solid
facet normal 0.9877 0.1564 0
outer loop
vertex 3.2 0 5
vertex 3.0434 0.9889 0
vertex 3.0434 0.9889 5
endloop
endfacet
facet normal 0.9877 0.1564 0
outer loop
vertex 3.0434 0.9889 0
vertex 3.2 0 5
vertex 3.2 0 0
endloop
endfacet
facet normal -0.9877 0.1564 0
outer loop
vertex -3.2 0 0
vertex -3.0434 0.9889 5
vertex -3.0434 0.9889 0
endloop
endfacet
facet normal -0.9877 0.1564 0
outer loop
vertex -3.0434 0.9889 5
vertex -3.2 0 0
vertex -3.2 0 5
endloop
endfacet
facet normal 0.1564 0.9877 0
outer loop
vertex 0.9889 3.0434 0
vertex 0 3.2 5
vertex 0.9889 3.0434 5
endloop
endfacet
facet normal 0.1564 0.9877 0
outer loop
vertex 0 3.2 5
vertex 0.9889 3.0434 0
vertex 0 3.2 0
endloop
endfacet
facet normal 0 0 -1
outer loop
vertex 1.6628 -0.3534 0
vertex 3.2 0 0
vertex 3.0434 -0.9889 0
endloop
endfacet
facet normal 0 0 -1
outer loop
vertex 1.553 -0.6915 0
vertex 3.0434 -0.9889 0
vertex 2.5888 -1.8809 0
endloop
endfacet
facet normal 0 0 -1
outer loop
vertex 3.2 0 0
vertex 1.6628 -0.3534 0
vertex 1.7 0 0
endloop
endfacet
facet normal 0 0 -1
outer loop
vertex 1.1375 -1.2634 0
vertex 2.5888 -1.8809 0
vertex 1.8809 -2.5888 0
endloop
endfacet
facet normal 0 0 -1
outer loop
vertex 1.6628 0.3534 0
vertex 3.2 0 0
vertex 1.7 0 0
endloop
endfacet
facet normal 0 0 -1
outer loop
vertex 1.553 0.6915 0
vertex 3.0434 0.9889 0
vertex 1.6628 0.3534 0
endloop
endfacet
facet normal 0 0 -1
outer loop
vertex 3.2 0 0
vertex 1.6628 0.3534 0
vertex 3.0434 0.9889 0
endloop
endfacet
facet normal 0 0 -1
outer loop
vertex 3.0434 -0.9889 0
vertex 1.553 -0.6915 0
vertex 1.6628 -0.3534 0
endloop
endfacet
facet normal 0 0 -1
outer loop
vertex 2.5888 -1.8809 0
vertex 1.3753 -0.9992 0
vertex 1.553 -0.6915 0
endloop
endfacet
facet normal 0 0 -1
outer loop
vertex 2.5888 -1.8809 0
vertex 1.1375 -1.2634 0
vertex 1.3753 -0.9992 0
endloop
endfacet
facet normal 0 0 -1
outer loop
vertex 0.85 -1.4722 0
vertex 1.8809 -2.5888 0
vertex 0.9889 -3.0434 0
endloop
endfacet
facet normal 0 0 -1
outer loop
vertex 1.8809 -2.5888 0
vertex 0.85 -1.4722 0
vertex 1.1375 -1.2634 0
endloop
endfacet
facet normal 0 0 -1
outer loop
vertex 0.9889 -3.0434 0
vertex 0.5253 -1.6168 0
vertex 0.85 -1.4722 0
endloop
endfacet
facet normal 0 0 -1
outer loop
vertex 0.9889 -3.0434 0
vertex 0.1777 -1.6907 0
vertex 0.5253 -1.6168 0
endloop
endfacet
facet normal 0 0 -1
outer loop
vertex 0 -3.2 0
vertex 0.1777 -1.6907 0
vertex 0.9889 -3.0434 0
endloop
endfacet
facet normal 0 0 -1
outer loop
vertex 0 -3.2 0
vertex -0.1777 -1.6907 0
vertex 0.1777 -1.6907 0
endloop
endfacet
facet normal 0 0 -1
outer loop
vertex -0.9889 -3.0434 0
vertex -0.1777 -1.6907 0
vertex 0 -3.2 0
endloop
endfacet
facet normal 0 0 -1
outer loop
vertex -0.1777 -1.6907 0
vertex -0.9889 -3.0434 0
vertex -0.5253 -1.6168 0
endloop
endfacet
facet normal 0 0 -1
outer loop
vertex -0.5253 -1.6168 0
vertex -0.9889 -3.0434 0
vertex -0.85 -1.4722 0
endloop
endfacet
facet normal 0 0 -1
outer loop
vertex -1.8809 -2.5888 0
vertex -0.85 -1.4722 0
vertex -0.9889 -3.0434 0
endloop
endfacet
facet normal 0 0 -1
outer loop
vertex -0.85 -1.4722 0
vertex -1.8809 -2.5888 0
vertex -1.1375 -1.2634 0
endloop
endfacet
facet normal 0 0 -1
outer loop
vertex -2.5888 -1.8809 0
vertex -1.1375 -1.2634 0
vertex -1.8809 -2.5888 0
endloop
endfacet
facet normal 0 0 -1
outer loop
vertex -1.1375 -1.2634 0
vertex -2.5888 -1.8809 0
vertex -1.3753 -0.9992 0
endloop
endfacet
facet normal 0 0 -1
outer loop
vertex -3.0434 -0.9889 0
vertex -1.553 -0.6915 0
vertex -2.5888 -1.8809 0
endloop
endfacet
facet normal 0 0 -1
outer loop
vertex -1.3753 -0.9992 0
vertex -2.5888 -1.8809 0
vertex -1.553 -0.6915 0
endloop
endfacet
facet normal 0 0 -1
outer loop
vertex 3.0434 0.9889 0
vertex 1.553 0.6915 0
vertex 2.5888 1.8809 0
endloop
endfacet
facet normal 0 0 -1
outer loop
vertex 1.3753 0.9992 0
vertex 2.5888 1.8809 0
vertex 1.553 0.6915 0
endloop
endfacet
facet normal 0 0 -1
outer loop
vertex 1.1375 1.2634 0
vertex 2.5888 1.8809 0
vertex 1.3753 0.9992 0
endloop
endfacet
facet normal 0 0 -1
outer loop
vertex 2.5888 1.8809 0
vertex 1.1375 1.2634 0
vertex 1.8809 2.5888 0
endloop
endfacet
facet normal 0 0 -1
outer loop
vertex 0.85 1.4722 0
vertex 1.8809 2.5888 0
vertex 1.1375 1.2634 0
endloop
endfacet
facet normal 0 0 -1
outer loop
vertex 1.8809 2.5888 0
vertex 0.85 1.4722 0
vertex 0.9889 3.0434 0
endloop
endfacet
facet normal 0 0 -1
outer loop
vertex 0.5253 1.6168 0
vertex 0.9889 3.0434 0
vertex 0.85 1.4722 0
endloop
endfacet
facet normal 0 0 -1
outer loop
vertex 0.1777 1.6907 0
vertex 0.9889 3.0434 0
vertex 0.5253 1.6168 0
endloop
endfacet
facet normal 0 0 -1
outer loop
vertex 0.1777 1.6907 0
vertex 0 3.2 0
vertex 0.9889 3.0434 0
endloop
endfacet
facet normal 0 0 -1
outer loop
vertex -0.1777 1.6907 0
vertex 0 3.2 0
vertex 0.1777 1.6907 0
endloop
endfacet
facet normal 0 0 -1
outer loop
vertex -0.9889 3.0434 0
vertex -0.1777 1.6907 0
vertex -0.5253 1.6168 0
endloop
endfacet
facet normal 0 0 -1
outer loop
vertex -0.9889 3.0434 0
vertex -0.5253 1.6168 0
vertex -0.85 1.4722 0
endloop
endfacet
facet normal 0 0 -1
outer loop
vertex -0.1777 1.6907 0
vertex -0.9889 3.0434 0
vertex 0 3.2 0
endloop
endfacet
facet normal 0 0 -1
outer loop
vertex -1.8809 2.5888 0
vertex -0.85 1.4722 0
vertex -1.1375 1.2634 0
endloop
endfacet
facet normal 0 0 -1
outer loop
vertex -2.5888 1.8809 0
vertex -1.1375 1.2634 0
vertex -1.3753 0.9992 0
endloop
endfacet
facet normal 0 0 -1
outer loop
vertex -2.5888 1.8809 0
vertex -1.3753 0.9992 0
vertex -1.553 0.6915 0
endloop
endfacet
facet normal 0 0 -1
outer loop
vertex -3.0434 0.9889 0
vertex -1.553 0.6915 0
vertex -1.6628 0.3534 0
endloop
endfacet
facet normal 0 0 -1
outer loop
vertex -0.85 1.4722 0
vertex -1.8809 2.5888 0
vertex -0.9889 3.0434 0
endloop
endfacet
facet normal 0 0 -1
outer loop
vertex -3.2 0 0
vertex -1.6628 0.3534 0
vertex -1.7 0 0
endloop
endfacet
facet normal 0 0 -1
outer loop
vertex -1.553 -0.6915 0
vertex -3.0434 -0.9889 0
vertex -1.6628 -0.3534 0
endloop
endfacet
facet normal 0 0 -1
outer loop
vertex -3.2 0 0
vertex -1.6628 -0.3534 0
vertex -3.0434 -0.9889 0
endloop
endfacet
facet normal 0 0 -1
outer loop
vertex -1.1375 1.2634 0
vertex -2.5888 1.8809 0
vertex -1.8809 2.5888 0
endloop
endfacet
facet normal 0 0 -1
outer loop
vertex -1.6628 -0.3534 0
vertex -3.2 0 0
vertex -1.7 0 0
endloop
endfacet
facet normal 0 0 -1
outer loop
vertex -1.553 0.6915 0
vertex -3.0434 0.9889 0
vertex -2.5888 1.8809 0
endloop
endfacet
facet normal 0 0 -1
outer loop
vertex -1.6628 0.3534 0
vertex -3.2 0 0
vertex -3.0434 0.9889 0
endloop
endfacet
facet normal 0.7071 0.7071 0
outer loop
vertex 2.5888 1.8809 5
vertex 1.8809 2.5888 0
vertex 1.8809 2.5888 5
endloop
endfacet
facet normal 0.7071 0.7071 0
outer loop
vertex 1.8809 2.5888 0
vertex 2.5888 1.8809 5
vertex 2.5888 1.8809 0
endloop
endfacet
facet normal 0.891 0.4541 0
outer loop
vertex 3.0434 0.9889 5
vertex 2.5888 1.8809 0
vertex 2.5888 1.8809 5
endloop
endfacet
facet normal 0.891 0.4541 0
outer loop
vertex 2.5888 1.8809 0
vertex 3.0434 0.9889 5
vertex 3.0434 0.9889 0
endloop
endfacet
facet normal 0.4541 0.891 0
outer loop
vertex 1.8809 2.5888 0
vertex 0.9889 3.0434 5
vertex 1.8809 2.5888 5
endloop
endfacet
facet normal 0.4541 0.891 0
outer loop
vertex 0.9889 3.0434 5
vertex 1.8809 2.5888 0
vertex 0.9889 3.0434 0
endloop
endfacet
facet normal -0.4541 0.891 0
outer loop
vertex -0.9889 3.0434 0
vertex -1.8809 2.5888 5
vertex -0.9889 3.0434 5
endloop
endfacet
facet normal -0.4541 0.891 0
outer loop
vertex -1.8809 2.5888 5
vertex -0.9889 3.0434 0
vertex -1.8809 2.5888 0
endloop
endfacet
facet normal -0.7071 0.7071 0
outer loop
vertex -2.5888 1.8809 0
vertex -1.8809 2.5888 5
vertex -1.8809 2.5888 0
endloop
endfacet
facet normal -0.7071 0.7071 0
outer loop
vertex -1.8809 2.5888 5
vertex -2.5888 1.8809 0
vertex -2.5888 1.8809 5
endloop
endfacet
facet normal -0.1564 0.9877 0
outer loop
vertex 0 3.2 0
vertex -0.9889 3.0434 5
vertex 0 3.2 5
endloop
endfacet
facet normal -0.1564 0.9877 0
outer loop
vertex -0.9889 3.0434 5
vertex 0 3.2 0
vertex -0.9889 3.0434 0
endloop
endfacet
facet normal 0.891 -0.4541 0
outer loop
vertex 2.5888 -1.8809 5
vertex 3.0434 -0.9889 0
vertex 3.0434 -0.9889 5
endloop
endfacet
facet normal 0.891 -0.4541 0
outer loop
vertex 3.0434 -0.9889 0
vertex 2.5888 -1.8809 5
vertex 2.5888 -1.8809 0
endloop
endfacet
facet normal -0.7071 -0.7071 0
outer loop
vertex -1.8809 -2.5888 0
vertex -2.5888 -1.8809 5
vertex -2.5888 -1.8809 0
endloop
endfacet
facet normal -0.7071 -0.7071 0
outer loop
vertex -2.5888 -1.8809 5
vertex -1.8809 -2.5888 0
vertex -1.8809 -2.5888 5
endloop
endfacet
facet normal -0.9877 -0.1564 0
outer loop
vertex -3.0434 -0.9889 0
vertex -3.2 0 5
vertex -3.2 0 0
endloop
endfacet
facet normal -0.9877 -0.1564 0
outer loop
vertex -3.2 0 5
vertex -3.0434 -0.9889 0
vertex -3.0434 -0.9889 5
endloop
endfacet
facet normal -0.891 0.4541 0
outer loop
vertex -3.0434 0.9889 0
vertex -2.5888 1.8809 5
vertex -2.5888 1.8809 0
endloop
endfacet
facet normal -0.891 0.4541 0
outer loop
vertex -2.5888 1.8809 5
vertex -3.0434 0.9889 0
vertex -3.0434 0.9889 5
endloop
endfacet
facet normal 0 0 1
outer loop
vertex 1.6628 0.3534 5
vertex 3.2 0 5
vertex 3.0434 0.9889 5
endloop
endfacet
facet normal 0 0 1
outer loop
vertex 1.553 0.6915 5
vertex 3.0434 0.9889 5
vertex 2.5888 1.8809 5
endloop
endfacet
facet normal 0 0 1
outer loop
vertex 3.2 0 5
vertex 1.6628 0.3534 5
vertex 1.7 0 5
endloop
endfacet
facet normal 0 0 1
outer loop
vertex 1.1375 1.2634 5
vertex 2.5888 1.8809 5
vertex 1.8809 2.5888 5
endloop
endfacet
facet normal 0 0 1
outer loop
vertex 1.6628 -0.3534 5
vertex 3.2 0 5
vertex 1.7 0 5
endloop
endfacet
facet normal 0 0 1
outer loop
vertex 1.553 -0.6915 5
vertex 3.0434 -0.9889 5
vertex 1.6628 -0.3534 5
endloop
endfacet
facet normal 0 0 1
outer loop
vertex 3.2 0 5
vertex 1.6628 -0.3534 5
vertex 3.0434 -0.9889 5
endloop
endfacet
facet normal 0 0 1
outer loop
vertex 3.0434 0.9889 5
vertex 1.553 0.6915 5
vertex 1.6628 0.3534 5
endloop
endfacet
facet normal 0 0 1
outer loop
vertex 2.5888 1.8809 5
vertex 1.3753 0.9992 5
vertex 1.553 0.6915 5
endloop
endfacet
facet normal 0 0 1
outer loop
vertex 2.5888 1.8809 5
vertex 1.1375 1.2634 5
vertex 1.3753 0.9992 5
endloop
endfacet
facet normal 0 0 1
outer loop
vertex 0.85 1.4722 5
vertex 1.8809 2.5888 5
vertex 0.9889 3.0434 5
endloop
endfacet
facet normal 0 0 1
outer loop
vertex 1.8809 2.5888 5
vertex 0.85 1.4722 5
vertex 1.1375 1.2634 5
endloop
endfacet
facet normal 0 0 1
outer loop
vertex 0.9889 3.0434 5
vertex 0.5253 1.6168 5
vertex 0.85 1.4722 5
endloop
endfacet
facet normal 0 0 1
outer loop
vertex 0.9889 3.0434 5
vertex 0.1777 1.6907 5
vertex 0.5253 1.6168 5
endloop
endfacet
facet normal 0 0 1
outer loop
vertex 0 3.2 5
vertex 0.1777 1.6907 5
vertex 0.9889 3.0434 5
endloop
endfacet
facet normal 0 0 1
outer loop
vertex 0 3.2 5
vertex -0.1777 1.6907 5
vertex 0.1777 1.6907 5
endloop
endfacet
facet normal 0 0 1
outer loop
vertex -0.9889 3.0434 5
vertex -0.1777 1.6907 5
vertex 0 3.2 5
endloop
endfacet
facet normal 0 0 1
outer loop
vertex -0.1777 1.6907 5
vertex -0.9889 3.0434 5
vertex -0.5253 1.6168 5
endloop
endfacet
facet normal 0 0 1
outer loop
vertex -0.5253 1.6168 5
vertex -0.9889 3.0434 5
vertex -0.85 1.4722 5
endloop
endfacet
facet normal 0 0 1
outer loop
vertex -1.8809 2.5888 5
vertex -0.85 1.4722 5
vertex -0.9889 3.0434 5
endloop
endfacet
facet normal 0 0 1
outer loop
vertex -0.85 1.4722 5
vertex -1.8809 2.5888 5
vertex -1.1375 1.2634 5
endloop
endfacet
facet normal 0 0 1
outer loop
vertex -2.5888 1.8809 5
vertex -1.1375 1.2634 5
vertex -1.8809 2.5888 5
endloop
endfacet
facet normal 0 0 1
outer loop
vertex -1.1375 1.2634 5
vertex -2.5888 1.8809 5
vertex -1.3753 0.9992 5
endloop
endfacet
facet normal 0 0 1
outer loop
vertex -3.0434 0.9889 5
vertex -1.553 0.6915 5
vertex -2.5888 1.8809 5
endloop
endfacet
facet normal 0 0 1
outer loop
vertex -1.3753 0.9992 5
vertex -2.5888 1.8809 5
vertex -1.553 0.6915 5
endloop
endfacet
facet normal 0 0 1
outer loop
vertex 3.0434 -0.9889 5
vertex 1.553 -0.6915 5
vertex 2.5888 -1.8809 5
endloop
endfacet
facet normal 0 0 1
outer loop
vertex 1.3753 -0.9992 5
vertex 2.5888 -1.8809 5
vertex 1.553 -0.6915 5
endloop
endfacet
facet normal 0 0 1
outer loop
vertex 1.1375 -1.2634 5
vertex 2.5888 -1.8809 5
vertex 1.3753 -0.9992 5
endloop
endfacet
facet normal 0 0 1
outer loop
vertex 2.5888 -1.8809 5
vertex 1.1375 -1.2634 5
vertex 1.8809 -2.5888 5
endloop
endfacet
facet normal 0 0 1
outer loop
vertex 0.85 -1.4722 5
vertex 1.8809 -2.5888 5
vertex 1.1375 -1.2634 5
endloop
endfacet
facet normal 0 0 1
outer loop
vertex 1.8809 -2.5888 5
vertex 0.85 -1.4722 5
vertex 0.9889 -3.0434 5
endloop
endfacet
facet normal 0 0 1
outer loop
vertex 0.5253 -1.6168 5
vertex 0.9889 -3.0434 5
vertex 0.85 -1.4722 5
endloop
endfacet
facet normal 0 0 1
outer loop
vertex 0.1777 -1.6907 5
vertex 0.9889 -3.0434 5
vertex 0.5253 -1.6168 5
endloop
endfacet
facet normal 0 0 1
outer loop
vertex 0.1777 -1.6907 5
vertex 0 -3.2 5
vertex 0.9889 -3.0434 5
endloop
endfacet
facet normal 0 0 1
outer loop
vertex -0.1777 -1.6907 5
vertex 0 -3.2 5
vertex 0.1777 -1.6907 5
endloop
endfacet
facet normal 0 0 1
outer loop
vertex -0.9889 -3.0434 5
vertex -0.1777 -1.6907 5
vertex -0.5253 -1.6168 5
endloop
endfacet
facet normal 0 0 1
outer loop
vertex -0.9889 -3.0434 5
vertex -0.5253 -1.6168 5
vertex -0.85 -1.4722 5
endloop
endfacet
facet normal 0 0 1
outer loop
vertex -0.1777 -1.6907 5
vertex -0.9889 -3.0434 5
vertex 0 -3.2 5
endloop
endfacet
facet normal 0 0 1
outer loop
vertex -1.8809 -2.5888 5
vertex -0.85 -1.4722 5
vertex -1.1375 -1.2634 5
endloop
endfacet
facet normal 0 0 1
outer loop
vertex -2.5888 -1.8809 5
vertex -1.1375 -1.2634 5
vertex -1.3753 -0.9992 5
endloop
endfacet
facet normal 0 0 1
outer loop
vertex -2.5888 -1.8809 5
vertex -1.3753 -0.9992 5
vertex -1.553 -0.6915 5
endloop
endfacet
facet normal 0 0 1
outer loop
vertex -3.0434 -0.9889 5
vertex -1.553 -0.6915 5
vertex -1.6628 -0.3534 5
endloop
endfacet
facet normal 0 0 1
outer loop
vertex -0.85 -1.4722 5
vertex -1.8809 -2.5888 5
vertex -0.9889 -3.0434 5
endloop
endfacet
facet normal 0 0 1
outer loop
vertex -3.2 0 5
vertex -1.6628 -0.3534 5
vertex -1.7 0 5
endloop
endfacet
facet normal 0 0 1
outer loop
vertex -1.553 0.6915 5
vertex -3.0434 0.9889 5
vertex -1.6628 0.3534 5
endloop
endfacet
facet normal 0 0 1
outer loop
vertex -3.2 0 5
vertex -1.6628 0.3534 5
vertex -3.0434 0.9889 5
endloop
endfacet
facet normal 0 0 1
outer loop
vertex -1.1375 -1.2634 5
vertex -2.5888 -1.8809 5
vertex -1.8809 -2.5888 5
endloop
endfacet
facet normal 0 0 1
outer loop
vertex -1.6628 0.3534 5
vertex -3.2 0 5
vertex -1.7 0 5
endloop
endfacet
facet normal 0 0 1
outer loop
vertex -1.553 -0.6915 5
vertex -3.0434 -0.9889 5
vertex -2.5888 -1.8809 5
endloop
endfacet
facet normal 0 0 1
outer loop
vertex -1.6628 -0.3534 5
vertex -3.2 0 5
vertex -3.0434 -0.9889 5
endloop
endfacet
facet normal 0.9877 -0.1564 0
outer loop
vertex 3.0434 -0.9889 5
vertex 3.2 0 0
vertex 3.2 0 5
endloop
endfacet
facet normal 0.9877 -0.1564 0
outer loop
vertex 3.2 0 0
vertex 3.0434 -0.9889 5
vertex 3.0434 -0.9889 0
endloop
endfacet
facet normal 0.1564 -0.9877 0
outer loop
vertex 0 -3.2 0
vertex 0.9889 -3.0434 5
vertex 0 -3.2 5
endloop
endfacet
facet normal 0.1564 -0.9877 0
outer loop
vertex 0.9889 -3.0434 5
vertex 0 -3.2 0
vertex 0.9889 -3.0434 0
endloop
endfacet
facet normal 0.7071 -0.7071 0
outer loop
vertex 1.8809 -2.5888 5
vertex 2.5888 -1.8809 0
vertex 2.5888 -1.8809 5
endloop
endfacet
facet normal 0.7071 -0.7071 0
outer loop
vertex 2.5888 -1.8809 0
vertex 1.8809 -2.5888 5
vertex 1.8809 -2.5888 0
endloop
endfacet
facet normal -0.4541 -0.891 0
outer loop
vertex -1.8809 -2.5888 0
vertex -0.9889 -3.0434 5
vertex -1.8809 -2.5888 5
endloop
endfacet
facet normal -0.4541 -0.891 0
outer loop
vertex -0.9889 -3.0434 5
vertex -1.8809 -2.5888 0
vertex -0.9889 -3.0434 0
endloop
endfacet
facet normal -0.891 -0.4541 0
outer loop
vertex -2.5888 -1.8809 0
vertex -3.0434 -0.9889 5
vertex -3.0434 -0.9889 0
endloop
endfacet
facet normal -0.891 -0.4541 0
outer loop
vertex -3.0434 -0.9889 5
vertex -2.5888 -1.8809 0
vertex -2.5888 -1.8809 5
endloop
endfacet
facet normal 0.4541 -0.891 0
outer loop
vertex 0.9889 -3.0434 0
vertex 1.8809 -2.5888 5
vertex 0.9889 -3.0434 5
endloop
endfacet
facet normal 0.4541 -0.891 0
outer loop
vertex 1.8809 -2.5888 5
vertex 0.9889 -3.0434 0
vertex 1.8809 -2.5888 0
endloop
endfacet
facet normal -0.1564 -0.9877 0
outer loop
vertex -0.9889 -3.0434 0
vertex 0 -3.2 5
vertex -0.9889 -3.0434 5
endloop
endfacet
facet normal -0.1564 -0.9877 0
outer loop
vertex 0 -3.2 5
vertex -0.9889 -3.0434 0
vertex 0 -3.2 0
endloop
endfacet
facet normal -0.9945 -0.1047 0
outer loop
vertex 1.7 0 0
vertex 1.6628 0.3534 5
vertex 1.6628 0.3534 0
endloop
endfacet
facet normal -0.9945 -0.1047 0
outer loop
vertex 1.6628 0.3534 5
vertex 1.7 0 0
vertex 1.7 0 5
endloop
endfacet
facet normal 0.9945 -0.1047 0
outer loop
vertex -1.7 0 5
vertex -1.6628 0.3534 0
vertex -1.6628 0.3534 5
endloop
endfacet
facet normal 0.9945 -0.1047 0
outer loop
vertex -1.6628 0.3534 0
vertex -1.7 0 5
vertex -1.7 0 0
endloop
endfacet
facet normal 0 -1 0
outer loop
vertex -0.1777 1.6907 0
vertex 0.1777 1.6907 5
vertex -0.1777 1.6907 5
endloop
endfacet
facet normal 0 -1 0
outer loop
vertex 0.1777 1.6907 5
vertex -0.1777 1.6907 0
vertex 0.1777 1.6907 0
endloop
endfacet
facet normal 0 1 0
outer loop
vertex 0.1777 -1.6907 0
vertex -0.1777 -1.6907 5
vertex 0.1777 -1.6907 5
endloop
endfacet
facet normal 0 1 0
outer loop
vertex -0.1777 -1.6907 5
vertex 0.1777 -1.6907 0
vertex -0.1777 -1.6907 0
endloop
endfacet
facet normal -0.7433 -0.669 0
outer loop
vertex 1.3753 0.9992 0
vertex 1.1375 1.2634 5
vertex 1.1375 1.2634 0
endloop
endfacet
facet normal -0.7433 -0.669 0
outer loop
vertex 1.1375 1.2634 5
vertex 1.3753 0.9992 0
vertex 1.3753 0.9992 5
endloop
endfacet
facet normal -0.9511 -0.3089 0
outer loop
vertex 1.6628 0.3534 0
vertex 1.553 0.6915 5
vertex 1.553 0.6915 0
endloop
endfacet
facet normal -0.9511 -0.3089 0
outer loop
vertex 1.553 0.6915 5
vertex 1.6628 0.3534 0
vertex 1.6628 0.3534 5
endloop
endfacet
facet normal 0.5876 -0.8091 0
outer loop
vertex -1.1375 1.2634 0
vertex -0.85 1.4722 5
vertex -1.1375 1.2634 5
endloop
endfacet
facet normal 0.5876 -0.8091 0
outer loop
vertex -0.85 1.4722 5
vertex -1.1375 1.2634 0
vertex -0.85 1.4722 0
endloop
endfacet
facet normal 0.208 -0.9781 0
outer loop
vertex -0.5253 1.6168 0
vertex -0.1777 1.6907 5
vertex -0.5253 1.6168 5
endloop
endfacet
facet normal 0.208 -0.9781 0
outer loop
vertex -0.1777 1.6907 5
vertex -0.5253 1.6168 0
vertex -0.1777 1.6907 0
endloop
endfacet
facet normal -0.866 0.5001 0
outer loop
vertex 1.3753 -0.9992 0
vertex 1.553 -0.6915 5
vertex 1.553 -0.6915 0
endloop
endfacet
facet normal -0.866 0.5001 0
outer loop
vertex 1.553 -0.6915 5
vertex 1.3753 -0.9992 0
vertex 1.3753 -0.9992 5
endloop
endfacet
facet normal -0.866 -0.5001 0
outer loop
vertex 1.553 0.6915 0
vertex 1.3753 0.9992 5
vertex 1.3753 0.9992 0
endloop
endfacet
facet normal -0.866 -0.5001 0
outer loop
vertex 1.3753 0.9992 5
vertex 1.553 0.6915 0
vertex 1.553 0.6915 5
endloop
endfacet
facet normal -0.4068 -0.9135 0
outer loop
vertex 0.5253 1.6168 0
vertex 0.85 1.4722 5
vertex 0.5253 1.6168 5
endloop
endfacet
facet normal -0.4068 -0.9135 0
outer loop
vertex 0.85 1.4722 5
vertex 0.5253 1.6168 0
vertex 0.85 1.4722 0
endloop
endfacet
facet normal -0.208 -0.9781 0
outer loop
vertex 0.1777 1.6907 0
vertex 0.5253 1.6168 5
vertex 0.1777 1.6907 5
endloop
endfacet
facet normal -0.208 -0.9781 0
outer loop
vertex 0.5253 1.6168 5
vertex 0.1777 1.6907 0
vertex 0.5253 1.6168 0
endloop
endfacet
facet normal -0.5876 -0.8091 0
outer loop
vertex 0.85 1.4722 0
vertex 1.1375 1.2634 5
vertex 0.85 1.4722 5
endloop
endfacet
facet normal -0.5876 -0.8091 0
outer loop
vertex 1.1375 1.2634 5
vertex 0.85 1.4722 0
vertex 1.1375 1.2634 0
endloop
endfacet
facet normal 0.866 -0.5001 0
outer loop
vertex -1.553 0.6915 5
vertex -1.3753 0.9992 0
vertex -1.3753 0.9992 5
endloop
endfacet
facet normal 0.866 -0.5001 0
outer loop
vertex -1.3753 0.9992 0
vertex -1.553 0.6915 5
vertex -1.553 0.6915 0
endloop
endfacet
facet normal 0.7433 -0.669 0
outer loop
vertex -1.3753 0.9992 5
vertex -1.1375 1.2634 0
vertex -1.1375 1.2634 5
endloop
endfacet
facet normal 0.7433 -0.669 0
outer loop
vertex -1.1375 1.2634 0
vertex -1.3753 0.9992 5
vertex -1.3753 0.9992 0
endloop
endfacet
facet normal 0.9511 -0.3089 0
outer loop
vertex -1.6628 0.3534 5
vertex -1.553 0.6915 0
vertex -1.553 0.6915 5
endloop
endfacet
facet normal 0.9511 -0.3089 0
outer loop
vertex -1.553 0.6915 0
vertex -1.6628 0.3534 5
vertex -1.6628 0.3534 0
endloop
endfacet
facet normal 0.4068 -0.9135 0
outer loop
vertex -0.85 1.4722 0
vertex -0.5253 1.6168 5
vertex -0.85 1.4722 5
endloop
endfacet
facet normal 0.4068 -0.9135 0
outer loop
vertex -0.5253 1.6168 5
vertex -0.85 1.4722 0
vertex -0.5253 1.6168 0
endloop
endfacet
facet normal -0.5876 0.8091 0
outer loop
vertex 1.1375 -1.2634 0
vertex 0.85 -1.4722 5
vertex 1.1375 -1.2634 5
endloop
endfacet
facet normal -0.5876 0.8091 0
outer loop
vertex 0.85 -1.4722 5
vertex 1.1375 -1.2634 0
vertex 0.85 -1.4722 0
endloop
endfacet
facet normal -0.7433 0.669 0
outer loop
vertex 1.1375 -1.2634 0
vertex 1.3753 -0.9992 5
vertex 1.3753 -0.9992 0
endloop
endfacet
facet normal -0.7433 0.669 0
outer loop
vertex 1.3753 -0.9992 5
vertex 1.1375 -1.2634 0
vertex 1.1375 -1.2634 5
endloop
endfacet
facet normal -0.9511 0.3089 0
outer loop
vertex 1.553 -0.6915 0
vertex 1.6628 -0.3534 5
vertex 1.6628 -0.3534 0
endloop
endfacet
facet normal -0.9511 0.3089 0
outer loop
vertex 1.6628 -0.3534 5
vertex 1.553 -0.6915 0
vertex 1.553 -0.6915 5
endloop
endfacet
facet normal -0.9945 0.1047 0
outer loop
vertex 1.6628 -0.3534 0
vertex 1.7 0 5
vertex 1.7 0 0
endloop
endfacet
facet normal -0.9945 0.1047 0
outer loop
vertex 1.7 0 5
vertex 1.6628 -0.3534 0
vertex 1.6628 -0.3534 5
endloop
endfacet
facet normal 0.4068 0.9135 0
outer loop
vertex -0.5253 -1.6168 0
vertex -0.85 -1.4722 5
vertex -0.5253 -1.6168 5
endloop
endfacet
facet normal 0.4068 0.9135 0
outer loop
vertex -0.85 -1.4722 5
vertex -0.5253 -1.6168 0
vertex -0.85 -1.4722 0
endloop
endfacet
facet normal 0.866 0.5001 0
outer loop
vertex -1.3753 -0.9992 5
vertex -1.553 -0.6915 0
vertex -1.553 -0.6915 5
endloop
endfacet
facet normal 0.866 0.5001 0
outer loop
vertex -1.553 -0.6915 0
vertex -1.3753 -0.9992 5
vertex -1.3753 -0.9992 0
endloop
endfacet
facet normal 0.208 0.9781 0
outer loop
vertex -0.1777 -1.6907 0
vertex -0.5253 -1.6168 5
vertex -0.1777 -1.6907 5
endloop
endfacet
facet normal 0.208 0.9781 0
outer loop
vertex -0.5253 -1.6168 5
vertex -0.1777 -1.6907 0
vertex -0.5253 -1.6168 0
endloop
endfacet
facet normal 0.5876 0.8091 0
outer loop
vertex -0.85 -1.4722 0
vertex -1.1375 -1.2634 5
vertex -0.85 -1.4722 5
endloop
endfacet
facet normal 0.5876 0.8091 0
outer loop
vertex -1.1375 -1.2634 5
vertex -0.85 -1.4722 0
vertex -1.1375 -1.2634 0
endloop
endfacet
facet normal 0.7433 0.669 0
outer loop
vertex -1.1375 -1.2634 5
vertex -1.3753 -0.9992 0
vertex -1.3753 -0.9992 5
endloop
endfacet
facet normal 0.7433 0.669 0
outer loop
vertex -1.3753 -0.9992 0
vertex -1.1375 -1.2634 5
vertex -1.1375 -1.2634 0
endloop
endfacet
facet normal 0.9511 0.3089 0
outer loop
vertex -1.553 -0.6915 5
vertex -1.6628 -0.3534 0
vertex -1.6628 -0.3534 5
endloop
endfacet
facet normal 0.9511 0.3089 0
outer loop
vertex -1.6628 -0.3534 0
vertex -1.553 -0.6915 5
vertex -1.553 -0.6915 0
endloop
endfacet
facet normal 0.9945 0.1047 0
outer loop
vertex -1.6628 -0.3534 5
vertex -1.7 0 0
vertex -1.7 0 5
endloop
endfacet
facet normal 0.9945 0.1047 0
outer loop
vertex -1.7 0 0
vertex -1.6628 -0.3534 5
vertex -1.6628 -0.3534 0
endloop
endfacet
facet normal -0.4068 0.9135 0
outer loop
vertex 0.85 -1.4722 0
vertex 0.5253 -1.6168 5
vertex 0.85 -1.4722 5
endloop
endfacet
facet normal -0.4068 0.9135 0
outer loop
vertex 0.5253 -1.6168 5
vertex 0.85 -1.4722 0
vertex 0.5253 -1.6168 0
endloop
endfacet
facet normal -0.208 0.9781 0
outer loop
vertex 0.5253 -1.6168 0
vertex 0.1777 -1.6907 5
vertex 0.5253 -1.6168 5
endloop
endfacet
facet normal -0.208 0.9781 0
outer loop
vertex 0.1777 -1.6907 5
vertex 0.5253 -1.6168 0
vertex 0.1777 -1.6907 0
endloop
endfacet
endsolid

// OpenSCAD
difference(){
  cylinder(d=6.4, h=5.0, $fn=20);
  translate([0,0,-1])
    cylinder(d=3.4, h=7.0, $fn=30);
}
